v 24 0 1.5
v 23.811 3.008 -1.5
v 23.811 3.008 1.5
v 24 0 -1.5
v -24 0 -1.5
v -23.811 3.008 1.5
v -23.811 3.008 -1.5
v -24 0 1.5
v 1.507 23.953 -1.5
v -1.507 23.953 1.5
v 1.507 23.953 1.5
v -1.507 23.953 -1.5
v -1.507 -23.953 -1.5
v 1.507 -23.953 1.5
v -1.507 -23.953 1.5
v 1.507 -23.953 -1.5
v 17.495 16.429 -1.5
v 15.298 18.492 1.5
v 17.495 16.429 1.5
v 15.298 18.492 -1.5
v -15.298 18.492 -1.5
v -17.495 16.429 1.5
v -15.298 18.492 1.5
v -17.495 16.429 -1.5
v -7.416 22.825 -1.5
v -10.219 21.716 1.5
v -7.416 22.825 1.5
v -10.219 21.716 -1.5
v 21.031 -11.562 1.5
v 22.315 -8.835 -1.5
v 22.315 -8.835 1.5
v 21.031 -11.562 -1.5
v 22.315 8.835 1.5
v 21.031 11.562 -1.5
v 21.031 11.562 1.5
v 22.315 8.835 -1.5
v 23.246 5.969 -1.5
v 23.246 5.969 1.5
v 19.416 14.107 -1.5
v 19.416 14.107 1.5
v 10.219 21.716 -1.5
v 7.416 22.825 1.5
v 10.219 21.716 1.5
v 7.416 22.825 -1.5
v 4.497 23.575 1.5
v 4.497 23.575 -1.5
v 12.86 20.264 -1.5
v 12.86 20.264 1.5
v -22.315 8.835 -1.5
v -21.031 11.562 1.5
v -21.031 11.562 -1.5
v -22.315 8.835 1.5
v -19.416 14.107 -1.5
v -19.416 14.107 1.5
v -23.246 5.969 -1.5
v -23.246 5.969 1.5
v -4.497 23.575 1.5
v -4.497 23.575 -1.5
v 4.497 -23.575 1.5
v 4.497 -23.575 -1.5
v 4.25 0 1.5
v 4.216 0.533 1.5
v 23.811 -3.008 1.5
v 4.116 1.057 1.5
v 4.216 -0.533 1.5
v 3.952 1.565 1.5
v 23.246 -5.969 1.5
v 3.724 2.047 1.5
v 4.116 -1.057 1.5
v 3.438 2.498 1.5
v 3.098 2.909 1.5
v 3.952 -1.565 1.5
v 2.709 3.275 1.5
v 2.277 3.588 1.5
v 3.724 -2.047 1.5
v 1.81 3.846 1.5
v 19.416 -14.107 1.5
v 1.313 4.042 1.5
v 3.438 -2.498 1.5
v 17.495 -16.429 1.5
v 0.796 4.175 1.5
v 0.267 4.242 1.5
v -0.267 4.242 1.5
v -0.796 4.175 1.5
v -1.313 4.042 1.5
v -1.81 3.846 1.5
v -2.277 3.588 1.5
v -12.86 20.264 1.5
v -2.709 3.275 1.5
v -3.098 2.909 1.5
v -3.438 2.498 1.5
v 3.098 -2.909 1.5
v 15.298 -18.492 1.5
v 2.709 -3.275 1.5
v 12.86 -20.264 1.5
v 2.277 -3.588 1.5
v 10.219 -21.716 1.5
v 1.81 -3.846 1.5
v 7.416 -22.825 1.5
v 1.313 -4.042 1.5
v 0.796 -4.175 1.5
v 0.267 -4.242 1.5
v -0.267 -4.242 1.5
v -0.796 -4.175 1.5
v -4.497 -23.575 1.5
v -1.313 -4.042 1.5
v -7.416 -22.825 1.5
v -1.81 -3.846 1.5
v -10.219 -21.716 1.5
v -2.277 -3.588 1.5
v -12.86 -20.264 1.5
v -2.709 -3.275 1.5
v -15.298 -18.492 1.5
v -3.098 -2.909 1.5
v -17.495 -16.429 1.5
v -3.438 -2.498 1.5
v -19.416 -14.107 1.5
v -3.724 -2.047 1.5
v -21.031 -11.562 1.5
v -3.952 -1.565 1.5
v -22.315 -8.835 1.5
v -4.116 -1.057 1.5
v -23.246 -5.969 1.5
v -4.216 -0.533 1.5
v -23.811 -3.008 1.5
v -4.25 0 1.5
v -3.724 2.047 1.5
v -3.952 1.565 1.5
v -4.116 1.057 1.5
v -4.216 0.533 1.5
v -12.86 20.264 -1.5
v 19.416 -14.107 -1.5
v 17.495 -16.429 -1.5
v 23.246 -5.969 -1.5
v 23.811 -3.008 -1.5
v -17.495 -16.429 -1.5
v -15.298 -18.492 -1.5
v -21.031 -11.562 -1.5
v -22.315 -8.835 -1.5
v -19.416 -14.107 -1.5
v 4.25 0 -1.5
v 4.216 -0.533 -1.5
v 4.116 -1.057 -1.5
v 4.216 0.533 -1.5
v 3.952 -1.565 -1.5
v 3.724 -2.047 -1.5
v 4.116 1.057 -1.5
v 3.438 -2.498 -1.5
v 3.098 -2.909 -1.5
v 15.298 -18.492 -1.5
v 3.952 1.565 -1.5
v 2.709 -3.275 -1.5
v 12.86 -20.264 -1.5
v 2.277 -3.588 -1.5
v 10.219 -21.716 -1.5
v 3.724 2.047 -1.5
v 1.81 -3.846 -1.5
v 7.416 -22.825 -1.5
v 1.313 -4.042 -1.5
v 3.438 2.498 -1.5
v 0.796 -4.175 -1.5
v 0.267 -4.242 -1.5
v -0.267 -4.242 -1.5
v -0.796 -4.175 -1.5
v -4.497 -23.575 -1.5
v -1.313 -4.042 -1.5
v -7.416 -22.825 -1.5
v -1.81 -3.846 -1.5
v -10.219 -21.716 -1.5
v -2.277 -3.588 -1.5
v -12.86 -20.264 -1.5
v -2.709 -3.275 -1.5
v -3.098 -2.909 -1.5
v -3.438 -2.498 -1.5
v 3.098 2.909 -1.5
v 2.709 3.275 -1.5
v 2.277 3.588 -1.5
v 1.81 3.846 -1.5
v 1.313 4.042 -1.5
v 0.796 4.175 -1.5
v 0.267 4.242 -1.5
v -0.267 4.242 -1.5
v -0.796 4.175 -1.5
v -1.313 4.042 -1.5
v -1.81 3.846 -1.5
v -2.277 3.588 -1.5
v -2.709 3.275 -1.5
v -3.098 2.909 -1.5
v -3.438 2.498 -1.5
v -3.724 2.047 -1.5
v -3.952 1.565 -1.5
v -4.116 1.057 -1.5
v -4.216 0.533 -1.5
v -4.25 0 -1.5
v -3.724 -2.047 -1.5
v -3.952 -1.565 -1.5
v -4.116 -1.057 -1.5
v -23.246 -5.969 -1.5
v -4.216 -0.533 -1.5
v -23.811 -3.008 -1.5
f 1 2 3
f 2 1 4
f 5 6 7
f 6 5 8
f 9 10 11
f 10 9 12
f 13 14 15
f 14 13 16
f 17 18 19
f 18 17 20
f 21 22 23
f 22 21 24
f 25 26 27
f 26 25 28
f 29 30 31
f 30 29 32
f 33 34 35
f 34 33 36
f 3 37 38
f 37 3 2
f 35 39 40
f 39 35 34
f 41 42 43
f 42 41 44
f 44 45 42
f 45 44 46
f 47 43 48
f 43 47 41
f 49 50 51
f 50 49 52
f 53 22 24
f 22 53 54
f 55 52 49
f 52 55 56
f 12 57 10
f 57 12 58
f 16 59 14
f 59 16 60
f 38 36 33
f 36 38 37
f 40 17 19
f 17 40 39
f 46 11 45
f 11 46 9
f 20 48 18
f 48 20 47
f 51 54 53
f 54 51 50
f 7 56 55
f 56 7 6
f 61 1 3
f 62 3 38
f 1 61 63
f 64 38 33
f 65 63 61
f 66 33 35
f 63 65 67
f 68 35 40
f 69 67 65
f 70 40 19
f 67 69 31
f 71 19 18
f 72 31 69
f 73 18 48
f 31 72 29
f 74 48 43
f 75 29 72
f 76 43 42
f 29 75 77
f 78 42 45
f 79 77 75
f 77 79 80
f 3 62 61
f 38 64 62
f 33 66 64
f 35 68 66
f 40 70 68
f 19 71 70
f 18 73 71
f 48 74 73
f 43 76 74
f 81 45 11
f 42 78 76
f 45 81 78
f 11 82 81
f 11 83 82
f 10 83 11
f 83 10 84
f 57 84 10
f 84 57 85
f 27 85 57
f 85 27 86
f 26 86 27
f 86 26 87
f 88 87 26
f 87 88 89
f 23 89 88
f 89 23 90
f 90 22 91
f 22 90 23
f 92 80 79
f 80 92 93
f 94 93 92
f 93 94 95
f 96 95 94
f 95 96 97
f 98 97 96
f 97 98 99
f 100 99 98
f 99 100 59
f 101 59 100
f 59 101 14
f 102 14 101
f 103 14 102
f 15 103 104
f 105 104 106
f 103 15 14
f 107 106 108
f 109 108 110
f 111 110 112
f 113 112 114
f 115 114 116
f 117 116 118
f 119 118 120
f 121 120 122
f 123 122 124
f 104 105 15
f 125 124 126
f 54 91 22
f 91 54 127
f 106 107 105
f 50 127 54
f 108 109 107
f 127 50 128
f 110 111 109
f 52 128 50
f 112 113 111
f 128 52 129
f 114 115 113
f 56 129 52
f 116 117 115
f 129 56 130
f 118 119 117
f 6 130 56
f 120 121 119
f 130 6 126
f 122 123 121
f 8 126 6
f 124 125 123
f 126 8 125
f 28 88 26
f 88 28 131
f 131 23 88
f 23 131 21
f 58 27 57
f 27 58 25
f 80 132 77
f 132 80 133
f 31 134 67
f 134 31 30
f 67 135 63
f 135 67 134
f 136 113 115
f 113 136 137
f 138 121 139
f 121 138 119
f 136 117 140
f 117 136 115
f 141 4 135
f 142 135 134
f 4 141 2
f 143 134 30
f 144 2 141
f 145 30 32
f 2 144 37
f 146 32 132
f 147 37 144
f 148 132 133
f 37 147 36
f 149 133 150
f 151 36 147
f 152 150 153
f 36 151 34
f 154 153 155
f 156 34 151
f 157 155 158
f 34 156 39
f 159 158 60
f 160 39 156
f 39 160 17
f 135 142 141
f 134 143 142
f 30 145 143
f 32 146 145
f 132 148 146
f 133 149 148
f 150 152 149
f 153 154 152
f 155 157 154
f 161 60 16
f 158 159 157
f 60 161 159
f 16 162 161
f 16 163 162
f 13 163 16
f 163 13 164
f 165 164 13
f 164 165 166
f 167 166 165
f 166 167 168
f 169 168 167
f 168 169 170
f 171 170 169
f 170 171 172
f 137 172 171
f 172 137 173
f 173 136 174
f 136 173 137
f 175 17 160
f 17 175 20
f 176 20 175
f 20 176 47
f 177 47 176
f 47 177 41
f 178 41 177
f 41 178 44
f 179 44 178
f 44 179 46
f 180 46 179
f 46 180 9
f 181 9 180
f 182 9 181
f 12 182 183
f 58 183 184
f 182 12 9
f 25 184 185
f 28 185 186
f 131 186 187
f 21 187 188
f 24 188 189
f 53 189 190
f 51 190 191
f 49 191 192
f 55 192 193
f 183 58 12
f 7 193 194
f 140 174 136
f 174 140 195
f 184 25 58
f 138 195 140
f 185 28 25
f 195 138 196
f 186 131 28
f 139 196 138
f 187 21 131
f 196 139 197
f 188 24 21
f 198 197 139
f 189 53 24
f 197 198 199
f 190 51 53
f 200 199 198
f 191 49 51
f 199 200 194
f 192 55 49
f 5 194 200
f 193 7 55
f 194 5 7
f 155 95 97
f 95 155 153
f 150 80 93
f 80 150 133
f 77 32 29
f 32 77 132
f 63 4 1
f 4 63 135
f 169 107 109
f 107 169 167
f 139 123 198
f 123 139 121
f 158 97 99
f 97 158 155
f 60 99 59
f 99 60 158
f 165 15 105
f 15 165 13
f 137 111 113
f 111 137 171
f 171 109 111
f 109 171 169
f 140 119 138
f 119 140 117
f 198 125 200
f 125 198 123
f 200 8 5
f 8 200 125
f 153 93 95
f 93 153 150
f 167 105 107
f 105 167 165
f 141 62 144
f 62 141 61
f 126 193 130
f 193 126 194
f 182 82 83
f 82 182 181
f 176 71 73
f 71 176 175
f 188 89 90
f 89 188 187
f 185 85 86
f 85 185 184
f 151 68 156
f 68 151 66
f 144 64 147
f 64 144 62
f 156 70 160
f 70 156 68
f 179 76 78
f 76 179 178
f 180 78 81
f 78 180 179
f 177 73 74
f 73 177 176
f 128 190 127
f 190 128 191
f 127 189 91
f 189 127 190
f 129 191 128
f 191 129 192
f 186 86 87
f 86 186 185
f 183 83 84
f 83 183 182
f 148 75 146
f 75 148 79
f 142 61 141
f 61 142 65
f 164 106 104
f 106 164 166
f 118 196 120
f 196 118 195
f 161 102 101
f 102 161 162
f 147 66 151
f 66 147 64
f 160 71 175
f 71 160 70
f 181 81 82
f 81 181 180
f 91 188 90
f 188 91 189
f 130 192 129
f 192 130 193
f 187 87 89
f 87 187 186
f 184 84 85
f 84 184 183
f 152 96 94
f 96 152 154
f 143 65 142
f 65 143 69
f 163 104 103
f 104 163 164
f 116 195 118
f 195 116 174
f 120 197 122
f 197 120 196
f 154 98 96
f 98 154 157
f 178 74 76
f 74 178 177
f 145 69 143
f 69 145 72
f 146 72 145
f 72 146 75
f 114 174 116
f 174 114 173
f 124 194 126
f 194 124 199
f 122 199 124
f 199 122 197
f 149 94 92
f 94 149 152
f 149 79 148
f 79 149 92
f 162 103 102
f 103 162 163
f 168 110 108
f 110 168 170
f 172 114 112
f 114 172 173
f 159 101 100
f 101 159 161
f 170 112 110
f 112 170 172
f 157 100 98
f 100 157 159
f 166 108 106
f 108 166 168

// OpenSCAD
$fn = 50;


difference() {
	union() {
		translate(v = [0, 0, -1.5000000000]) {
			cylinder(h = 3, r = 24.0000000000);
		}
	}
	union() {
		translate(v = [0, 0, -100.0000000000]) {
			cylinder(h = 200, r = 4.2500000000);
		}
	}
}
